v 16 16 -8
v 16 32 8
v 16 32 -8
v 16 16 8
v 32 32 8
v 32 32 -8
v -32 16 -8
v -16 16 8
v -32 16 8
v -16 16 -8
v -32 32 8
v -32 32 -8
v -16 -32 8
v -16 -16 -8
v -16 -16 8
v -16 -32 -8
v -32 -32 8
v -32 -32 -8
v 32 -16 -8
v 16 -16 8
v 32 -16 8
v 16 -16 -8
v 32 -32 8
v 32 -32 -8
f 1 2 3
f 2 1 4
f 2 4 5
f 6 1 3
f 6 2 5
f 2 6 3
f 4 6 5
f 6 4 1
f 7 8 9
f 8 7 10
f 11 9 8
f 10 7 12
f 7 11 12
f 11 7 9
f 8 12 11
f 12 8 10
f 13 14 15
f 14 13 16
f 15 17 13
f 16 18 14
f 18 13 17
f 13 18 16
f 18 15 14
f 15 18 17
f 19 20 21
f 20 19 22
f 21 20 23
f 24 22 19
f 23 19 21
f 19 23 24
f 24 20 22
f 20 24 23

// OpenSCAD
// file: def.scad
block_size_3 = 19;
block_size_4 = 16;
block_size_5 = 14;
block_size_6 = 12.5;
block_size_7 = 11;
block_size_8 = 10;

inf = 1000;

round_radius = 1;
sticker_margin = 2.5;
sticker_round_radius = 0.75;

module _block(size) {
    minkowski() {
        cube([size - round_radius * 2, size - round_radius * 2, size - round_radius * 2], center = true);
        sphere(r = round_radius, $fn = 24);
    }
}

module _selector_0(size) {
    cube([size - 0.2, size - 0.2, size - 0.2], center = true);
}

module _sticker(size) {
    minkowski() {
        cube([size - sticker_margin * 2, size - sticker_margin * 2, 0.1], center = true);
        cylinder(r = sticker_round_radius, h = 0.1, $fn = 24);
    }
}

module _selector_corner_cw(size) {
    difference() {
        cube([size, size, size], center = true);
        rotate([0, -45, 0])
            translate([-inf, -inf, 0])
                cube([inf * 2, inf * 2, inf]);
        rotate([90, 0, 45])
            translate([-inf, -inf, 0])
                cube([inf * 2, inf * 2, inf]);
    }
}

module _selector_corner_ccw(size) {
    difference() {
        cube([size, size, size], center = true);
        rotate([45, 0, 0])
            translate([-inf, -inf, 0])
                cube([inf * 2, inf * 2, inf]);
        rotate([0, -90, -45])
            translate([-inf, -inf, 0])
                cube([inf * 2, inf * 2, inf]);
    }
}

module _selector_edge_cw(size) {
    difference() {
        cube([size, size, size], center = true);
        rotate([90, 0, 45])
            translate([-inf, -inf, 0])
                cube([inf * 2, inf * 2, inf]);
    }
}

module _selector_edge_ccw(size) {
    difference() {
        cube([size, size, size], center = true);
        rotate([0, -90, -45])
            translate([-inf, -inf, 0])
                cube([inf * 2, inf * 2, inf]);
    }
}
// main file
include <def.scad>

for (deg = [0 : 90 : 270])
    rotate([0, 0, deg])
        translate([block_size_4 * 1.5, block_size_4 * 1.5, 0])
            _selector_edge_cw(block_size_4);
